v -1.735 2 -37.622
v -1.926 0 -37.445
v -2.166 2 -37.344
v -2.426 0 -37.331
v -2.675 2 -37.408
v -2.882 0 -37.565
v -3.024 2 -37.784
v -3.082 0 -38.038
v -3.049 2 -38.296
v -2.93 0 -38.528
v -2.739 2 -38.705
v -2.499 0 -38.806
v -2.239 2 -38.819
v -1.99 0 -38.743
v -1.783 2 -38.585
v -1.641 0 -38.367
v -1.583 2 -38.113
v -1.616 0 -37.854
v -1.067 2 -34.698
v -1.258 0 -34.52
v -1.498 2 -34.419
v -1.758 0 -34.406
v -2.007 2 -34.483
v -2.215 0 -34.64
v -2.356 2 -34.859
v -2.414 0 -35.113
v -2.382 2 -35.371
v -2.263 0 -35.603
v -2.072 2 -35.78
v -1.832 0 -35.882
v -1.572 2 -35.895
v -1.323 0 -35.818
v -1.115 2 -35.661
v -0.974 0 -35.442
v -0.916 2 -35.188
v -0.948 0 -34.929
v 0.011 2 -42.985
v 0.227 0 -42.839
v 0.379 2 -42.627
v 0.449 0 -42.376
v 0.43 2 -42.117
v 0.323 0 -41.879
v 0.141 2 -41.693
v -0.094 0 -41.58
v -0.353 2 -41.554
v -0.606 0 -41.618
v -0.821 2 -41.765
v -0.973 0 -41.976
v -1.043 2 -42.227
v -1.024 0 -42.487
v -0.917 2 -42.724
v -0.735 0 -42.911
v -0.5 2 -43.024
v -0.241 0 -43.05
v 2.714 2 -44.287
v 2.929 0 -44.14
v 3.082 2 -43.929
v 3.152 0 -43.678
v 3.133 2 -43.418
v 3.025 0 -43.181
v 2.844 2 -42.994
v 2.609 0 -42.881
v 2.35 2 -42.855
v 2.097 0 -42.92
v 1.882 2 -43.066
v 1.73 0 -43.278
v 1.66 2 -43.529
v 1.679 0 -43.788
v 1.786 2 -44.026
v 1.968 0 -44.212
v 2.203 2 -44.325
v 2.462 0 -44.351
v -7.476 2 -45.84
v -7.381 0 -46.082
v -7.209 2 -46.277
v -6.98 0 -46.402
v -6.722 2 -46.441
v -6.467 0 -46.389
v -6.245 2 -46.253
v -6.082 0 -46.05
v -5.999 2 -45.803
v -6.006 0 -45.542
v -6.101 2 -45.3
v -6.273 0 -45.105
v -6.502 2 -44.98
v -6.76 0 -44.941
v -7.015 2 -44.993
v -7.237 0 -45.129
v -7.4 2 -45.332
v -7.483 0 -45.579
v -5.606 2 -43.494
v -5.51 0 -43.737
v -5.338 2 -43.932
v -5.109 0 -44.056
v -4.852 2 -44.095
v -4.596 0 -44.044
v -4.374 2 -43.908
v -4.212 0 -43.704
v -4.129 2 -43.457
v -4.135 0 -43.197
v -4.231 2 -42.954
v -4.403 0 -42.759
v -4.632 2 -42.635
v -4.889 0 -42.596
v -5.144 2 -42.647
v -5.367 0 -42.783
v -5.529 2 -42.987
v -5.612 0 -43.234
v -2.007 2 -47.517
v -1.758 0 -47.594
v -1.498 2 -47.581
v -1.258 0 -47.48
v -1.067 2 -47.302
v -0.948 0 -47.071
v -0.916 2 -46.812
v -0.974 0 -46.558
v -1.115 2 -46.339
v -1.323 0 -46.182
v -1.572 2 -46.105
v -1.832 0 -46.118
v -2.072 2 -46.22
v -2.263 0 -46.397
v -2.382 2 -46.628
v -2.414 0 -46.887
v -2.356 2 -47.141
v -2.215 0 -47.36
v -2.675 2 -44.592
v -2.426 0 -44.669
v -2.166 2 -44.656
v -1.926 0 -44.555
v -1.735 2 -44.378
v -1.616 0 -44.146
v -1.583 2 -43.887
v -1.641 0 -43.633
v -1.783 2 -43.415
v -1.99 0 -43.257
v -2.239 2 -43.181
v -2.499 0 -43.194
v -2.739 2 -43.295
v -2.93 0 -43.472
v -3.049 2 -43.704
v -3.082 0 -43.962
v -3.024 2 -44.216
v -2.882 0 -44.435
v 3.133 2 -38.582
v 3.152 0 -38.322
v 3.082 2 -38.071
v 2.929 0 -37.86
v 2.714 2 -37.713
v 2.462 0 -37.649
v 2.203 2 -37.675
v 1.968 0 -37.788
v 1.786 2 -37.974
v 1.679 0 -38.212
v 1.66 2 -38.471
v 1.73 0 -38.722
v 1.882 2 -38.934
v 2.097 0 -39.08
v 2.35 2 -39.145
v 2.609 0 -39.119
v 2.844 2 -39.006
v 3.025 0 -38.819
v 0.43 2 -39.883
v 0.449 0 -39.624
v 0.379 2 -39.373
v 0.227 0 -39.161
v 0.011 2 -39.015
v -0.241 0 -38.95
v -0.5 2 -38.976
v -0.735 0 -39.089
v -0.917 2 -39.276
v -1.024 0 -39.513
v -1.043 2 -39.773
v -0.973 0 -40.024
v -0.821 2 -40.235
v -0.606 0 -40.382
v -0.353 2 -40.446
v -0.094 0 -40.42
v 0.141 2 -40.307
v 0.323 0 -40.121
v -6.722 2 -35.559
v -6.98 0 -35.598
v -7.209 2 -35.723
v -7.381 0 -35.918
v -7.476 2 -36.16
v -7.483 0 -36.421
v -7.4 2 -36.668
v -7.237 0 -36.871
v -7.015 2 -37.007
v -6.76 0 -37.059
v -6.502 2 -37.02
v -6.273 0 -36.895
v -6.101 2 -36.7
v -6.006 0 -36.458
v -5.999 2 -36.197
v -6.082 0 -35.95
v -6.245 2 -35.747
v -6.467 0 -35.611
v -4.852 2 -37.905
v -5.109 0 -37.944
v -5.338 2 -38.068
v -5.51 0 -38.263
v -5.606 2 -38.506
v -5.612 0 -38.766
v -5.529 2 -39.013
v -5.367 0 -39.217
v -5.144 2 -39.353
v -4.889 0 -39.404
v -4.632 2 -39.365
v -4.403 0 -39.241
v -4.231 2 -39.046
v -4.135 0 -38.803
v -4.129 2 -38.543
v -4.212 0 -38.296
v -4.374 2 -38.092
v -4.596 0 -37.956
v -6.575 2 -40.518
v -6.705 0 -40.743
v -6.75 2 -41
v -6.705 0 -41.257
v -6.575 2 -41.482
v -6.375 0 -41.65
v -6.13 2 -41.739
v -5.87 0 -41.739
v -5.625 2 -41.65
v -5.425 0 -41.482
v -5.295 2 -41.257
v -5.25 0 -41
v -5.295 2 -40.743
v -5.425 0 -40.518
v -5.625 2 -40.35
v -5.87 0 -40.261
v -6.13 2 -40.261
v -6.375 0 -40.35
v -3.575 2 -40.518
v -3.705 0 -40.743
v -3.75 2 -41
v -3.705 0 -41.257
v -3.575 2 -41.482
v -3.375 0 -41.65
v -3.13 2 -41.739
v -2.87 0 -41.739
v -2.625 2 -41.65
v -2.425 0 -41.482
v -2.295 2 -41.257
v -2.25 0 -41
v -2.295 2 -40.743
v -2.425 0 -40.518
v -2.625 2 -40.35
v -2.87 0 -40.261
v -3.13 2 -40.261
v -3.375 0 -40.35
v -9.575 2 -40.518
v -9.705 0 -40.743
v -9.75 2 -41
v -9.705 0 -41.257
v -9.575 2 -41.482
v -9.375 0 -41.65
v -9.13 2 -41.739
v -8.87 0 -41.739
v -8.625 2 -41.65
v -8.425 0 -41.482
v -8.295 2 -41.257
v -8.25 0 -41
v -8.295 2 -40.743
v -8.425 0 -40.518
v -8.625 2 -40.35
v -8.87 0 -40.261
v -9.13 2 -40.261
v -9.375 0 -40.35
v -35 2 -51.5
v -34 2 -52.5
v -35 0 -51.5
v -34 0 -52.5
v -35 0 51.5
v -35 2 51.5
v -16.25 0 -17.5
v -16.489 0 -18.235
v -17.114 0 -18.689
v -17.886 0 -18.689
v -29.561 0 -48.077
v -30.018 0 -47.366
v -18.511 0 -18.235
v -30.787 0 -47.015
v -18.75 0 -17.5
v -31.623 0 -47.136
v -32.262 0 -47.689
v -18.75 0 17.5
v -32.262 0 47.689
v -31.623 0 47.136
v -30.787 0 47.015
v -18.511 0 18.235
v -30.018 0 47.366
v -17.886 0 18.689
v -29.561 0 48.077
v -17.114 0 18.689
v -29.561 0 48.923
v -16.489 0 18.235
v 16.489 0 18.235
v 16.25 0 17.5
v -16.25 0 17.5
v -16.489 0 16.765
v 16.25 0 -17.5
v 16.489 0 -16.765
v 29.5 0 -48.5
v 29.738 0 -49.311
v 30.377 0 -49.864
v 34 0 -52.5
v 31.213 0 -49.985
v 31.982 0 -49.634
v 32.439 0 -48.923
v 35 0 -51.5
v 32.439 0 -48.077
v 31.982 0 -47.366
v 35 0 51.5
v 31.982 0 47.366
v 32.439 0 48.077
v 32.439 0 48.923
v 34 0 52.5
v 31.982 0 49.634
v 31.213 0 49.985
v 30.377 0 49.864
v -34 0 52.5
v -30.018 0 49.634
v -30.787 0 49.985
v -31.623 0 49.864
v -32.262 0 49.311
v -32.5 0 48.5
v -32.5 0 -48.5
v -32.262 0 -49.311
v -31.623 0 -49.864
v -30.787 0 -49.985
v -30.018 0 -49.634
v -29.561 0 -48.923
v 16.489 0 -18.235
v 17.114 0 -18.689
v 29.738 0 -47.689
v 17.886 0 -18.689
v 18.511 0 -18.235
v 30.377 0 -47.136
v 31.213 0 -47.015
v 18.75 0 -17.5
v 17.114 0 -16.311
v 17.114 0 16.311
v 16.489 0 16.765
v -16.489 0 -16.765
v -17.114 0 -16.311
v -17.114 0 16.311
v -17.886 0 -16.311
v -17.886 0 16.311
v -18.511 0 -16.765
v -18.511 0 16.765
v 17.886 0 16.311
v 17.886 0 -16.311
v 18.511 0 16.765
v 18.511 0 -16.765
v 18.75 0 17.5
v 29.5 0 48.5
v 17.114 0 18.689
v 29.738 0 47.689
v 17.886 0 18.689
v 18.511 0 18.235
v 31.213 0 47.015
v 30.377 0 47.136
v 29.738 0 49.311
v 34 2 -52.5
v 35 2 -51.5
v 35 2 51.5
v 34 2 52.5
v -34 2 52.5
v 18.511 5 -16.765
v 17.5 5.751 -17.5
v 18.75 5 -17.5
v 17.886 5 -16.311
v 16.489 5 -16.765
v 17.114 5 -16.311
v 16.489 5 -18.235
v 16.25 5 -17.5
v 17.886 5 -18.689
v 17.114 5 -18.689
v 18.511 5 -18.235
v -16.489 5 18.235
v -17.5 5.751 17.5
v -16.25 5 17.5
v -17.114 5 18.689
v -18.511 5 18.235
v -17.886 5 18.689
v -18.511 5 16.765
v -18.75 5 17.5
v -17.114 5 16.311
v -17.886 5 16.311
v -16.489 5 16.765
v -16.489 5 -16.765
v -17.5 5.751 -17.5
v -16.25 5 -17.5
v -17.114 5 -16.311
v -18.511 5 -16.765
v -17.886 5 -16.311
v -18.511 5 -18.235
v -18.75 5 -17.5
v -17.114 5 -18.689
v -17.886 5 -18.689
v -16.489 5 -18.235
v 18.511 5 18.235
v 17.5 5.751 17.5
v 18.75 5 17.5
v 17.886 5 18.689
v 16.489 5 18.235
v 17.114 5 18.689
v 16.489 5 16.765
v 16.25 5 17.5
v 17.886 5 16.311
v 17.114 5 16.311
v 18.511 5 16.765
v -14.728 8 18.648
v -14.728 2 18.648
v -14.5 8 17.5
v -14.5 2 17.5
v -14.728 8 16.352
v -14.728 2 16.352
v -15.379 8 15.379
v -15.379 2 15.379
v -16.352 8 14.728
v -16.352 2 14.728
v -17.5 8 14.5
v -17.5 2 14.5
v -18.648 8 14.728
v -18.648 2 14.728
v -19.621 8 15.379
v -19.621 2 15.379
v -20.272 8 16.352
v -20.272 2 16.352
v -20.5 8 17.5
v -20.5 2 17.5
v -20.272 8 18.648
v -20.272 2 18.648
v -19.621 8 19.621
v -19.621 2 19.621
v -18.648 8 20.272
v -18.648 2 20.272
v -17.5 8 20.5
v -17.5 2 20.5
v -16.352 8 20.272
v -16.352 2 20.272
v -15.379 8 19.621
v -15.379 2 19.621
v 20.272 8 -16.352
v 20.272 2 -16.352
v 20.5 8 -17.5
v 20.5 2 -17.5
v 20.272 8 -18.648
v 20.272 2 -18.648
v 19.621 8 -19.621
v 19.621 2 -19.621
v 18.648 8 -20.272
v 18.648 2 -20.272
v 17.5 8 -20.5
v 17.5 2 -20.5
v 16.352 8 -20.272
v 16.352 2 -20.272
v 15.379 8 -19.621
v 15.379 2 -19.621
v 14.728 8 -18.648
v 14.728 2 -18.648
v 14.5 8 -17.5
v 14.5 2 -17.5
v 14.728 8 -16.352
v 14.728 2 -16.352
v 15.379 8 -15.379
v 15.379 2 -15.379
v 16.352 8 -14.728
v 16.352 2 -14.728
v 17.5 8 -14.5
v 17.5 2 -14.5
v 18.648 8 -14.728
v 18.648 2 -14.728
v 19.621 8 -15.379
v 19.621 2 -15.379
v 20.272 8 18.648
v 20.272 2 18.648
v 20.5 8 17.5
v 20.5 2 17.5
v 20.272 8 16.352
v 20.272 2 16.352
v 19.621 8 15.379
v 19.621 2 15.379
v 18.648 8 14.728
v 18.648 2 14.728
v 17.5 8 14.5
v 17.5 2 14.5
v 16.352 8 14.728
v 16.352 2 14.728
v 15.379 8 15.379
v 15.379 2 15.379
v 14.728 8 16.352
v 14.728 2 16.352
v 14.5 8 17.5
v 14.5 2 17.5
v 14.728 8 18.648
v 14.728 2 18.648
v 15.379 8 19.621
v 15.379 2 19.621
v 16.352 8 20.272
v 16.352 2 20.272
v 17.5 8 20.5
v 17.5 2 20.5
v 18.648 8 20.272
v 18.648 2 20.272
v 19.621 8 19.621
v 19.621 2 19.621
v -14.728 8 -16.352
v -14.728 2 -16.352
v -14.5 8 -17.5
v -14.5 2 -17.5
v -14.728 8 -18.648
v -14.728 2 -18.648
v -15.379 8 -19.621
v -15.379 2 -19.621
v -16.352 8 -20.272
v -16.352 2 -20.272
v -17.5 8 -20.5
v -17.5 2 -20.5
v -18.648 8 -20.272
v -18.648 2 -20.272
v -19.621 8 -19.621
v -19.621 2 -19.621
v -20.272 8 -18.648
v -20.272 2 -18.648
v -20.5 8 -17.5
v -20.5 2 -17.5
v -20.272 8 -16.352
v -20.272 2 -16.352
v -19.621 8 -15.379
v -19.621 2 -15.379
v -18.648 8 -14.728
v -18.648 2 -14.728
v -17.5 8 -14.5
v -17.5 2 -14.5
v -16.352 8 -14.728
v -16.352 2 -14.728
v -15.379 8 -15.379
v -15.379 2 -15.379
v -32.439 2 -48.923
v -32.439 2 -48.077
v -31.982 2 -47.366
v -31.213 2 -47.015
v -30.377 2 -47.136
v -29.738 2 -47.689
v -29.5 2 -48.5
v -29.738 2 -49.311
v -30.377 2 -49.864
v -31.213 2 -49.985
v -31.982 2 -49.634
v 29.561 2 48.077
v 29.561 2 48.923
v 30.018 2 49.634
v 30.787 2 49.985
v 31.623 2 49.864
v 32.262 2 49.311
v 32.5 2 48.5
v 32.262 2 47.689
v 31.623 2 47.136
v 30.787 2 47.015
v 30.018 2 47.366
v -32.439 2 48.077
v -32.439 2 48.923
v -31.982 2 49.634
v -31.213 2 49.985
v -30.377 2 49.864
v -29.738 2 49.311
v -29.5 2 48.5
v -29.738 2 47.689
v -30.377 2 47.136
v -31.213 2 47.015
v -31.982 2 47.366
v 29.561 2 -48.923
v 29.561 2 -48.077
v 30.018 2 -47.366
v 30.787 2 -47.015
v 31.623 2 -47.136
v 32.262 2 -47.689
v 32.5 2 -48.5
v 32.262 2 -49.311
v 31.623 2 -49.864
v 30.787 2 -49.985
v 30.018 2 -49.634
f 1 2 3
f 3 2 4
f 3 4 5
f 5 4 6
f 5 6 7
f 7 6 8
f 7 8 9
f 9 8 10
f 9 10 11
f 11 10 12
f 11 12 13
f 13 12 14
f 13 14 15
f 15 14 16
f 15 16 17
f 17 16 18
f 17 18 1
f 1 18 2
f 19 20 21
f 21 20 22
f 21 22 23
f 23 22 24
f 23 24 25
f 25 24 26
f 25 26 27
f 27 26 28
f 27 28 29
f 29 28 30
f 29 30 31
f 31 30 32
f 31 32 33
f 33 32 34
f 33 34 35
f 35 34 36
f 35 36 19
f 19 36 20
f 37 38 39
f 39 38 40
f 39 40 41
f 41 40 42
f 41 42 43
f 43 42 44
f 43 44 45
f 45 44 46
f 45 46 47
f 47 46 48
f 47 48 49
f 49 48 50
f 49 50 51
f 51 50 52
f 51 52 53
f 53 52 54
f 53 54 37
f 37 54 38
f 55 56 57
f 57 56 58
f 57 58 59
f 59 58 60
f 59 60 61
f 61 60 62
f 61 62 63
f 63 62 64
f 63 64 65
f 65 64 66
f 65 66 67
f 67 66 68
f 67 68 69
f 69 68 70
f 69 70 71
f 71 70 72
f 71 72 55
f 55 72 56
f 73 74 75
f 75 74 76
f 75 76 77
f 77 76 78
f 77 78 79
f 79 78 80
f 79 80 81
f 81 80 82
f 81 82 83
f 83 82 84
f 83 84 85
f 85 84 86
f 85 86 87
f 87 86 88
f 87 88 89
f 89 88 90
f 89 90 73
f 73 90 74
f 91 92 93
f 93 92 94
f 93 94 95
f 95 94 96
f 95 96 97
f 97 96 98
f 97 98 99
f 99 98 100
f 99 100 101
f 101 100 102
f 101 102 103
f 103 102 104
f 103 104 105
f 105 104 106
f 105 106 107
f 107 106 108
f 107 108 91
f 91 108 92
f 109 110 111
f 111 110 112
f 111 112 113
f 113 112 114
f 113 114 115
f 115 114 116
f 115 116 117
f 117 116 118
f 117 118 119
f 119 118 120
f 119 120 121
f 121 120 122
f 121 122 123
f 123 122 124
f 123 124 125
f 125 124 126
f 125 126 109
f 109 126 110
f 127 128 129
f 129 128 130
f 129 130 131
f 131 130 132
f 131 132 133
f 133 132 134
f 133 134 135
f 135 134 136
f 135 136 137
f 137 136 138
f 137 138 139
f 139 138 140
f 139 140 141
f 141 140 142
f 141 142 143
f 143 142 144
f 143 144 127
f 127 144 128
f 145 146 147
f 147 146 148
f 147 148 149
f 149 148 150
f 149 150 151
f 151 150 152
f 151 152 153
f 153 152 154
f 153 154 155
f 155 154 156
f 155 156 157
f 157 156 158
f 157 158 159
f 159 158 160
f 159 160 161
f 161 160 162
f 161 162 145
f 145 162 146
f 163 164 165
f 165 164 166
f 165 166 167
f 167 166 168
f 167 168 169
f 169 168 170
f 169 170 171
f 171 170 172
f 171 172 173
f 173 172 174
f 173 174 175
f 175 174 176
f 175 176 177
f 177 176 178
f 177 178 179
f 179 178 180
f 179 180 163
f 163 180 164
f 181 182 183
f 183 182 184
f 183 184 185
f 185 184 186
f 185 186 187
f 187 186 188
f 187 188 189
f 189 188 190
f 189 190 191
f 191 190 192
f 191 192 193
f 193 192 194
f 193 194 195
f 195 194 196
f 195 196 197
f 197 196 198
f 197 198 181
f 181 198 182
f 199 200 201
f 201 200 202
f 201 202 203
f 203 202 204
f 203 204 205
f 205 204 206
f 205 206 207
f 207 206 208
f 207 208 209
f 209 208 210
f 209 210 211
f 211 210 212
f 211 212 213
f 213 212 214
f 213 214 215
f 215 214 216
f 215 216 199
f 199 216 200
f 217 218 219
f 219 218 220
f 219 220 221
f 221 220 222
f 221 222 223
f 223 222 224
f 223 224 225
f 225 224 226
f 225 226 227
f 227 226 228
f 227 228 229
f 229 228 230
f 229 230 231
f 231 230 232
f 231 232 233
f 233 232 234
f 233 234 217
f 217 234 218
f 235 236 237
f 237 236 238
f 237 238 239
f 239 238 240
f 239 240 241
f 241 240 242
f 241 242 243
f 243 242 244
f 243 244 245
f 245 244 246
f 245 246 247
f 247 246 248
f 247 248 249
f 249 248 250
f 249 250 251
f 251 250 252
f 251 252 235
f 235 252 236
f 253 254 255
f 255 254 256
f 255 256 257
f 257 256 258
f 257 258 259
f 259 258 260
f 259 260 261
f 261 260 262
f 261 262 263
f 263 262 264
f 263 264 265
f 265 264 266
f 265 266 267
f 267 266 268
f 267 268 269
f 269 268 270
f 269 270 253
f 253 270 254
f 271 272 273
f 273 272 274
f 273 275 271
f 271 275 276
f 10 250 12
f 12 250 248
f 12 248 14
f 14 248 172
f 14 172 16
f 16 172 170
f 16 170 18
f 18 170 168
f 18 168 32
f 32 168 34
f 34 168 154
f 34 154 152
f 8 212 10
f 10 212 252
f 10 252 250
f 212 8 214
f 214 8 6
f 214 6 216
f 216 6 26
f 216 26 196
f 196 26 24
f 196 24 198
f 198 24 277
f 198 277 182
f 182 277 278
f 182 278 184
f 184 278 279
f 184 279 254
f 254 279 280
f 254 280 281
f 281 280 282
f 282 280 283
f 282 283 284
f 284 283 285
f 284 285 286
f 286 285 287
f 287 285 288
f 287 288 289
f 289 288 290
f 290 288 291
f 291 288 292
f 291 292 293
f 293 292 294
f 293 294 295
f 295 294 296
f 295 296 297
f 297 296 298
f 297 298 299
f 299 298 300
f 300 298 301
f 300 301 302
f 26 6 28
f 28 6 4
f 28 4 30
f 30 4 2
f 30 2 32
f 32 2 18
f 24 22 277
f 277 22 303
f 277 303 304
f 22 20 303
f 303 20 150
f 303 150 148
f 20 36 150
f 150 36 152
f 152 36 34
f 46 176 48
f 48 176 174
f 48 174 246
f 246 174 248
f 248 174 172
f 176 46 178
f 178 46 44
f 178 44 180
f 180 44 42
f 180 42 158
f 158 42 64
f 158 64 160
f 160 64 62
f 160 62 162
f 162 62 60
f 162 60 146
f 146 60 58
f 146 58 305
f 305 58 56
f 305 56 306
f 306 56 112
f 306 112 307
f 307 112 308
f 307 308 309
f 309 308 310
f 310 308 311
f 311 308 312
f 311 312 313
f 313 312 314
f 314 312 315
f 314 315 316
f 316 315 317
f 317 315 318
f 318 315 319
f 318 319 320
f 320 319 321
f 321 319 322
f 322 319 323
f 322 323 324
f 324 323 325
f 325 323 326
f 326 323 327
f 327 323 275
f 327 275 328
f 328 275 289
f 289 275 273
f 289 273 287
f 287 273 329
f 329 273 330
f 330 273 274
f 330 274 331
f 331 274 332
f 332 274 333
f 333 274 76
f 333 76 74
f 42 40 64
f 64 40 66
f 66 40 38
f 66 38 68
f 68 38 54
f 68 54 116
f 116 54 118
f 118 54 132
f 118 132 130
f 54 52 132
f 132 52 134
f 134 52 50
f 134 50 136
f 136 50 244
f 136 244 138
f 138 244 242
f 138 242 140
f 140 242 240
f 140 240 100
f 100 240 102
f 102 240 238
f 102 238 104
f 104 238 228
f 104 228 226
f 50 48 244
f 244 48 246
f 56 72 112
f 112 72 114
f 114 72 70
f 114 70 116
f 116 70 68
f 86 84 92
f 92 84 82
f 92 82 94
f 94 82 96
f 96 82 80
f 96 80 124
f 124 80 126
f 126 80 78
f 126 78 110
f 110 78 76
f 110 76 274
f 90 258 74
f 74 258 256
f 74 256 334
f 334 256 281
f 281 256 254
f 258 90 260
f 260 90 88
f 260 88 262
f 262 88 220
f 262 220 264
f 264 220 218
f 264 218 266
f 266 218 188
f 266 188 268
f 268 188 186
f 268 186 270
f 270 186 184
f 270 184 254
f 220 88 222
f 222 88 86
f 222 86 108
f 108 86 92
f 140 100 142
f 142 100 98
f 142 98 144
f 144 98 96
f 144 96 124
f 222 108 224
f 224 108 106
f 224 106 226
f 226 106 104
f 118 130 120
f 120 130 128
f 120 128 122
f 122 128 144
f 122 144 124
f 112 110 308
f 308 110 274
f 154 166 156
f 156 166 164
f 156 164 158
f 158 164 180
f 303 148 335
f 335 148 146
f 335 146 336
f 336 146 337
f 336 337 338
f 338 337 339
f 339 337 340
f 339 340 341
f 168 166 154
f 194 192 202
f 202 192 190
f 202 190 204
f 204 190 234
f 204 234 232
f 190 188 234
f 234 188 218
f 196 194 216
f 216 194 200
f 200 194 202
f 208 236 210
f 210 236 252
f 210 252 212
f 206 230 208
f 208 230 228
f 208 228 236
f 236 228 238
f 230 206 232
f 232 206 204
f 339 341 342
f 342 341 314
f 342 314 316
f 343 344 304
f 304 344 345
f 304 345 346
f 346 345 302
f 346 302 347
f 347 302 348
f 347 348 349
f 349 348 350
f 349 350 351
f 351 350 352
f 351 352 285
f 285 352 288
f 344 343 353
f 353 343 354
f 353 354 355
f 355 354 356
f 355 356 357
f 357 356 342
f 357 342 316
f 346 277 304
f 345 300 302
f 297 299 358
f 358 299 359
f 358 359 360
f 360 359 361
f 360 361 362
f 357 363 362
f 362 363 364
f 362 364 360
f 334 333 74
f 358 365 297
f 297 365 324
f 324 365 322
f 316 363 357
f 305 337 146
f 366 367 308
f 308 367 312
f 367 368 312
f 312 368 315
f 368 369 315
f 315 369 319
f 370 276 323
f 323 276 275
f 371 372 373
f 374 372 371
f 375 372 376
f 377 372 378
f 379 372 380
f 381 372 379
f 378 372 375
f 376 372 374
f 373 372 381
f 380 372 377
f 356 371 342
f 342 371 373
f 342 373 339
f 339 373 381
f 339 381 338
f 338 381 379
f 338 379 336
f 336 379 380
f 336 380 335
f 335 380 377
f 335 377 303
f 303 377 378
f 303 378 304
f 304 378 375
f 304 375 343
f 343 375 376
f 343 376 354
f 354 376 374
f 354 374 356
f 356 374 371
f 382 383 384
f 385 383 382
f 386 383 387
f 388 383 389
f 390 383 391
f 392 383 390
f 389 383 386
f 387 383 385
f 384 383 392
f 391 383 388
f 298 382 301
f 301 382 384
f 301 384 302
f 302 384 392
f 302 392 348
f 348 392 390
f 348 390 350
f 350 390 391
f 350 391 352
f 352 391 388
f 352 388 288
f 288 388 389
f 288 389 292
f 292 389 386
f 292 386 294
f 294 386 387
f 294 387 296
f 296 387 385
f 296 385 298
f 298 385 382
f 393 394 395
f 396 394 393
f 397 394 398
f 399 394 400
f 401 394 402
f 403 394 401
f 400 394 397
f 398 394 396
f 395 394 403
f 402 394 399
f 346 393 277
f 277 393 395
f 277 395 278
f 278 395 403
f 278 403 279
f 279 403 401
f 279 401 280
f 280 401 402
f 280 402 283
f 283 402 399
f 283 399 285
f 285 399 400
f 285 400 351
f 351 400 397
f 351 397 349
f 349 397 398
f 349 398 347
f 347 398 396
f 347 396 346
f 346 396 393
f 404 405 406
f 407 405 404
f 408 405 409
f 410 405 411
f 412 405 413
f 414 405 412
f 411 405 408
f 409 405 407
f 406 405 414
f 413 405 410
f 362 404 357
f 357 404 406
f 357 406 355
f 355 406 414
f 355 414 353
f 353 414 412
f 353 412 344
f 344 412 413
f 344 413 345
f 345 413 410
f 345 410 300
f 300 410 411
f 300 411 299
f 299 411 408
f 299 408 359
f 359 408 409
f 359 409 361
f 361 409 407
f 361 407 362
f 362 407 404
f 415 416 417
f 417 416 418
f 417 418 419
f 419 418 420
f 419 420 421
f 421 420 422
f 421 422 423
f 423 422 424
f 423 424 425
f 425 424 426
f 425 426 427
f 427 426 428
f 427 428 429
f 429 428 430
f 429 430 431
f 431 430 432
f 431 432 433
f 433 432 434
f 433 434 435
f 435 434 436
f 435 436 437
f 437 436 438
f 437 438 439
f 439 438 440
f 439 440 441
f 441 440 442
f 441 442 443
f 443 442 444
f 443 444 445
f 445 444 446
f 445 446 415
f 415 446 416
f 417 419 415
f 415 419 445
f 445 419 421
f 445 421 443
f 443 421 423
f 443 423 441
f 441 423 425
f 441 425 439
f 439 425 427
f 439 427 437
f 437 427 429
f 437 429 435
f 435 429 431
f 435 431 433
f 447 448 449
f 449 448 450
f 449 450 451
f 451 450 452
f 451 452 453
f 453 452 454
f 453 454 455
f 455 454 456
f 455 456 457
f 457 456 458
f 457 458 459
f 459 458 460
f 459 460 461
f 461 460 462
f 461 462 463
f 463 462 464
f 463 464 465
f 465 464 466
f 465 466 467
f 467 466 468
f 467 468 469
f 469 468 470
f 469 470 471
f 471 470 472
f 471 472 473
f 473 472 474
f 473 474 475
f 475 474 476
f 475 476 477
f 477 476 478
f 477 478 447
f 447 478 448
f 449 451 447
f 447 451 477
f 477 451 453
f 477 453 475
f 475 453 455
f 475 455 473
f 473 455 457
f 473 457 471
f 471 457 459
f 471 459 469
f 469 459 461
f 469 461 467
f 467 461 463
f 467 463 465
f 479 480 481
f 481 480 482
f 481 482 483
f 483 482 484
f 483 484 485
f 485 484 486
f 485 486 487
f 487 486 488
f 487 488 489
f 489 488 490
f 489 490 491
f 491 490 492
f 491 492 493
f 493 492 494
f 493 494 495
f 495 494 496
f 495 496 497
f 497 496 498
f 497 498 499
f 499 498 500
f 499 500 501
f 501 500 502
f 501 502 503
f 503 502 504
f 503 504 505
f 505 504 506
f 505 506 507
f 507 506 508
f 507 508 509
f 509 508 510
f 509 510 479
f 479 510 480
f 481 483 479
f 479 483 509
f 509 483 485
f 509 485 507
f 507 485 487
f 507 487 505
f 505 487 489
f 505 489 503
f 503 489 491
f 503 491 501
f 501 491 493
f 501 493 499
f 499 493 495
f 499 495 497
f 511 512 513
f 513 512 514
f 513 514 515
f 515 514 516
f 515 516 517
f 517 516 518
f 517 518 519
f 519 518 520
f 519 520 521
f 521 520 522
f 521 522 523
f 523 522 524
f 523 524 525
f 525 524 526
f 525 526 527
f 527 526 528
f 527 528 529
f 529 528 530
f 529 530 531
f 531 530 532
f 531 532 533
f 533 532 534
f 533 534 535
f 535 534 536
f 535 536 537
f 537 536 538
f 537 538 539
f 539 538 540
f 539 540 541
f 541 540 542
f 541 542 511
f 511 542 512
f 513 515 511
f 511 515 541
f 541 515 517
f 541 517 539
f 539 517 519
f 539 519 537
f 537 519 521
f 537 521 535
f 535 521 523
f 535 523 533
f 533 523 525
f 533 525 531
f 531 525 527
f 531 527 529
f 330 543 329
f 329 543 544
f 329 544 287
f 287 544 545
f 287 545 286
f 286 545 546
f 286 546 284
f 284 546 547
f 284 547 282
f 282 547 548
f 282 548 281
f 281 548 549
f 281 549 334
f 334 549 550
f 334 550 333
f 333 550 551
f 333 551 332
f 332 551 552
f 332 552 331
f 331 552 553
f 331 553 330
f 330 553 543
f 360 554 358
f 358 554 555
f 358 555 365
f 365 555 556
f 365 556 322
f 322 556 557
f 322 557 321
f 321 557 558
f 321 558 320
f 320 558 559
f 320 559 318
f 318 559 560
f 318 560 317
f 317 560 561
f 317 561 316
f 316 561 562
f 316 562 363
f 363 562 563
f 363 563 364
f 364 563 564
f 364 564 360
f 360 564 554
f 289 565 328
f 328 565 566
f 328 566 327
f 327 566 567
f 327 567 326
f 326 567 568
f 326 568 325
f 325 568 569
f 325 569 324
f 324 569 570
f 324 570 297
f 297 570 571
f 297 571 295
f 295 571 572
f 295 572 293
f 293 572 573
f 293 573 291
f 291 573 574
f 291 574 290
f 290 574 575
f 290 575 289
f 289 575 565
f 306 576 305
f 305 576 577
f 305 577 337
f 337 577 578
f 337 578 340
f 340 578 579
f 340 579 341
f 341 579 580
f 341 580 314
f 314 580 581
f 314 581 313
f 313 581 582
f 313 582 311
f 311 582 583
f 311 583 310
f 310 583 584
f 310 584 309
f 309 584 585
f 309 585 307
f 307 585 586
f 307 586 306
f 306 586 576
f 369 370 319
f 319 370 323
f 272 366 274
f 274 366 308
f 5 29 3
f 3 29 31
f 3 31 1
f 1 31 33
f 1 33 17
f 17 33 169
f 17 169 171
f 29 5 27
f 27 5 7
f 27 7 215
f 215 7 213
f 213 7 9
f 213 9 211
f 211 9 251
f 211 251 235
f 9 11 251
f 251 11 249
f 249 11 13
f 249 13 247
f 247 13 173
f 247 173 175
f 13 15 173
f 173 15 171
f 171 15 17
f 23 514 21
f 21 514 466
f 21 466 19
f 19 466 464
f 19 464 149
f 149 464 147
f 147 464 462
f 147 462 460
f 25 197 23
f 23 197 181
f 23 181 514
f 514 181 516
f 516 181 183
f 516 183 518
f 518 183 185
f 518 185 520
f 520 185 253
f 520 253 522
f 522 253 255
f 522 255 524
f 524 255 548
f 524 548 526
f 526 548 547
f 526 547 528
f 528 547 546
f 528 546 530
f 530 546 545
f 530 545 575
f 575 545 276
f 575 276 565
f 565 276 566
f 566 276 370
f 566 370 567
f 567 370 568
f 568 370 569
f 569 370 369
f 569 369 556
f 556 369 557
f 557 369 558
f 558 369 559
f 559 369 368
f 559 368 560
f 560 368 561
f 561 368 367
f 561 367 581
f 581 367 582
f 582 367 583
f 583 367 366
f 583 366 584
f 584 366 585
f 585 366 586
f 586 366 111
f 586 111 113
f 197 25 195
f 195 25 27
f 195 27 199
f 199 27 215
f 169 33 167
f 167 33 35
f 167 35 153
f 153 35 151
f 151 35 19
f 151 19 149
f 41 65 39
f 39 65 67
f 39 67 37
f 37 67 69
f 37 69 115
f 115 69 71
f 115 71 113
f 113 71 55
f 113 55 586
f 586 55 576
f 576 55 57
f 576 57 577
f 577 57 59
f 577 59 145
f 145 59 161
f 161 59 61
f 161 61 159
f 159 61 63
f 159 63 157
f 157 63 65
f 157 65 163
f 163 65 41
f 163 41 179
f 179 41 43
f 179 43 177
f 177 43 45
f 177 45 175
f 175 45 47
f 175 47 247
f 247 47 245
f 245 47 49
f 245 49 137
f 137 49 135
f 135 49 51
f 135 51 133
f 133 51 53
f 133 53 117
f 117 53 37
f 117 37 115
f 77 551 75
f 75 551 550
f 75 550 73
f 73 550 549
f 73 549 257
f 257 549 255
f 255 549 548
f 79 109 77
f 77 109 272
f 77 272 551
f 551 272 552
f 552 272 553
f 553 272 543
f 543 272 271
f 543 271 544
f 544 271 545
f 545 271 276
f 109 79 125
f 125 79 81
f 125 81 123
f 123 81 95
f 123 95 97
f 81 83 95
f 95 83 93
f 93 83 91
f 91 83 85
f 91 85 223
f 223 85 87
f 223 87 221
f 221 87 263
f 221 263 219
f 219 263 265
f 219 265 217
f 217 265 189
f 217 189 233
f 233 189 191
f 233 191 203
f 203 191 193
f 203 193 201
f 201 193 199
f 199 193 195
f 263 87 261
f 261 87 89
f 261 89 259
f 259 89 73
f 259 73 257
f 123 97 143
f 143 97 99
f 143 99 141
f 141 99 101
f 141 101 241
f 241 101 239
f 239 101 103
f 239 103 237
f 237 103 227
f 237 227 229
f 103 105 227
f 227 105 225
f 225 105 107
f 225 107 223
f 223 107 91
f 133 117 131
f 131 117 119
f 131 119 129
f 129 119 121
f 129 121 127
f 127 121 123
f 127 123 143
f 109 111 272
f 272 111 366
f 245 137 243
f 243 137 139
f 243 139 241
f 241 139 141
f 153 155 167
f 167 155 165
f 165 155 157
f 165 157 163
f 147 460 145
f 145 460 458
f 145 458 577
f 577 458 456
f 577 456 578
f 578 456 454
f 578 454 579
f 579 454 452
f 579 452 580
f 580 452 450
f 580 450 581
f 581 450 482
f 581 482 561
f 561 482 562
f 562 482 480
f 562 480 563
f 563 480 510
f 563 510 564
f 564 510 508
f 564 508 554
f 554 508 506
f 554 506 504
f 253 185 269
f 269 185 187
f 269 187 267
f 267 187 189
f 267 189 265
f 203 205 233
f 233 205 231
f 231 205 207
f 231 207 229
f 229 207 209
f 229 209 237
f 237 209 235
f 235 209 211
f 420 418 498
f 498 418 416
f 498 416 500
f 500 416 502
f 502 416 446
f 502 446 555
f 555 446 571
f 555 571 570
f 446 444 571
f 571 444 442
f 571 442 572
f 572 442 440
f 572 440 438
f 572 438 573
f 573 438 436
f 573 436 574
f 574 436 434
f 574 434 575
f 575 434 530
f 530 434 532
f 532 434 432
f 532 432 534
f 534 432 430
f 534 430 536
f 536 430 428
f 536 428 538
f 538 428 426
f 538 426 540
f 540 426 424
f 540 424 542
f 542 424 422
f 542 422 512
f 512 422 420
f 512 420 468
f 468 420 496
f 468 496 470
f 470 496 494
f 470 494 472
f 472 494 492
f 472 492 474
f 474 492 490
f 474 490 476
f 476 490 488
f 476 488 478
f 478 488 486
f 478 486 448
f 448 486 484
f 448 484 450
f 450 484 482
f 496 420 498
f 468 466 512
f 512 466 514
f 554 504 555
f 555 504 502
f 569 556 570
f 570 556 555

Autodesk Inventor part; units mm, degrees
ref_plane "YZ Plane" through (0, 0, 0) normal (1, 0, 0) x (0, 1, 0)
ref_plane "XZ Plane" through (0, 0, 0) normal (0, 1, 0) x (-1, 0, 0)
ref_plane "XY Plane" through (0, 0, 0) normal (0, 0, 1) x (1, 0, 0)
sketch "Skizze1" plane through (0, 0, 0) normal (0, 1, 0) x (-1, 0, 0)
  line L0 (35, 52.5) -> (-35, 52.5)
  line L1 (-35, 52.5) -> (-35, -52.5)
  line L2 (-35, -52.5) -> (35, -52.5)
  line L3 (35, -52.5) -> (35, 52.5)
  point P0 (0, 0)
  point P1 (35, 0)
  point P2 (0, 52.5)
  dimension "d0" = 70
  dimension "d1" = 105
extrude "Extrusion1" add sketch "Skizze1" along normal blind 2
sketch "Skizze3" plane through (0, 2, 0) normal (0, 1, 0) x (1, 0, 0)
  line L0 (31, 48.5) -> (-31, 48.5) construction
  line L1 (-31, 48.5) -> (-31, -48.5) construction
  line L2 (-31, -48.5) -> (31, -48.5) construction
  line L3 (31, -48.5) -> (31, 48.5) construction
  line L4 (35, -52.5) -> (35, 52.5) construction
  line L5 (35, 52.5) -> (-35, 52.5) construction
  line L6 (-35, 52.5) -> (-35, -52.5) construction
  line L7 (-35, -52.5) -> (35, -52.5) construction
  point P0 (0, 0)
  point P1 (31, 0)
  point P2 (0, 48.5)
  dimension "d27" = 105
  dimension "d28" = 70
  dimension "d29" = 62
  dimension "d30" = 97
hole "Bohrung1" at (31, 2, 48.5) at (-31, 2, 48.5) at (-31, 2, -48.5) at (31, 2, -48.5) direction (0, -1, 0) diameter 3 end through all
sketch "Skizze5" plane through (0, 2, 0) normal (0, 1, 0) x (1, 0, 0)
  line L0 (0, 40.5) -> (-2, 40.5)
  line L1 (-2, 40.5) -> (-2, 20.5)
  line L2 (-2, 20.5) -> (0, 20.5)
  line L3 (0, 20.5) -> (0, 40.5)
  line L4 (0, 10.5) -> (-7, 10.5)
  line L5 (-7, 10.5) -> (-7, 8.5)
  line L6 (-7, 8.5) -> (0, 8.5)
  line L7 (0, 8.5) -> (0, 10.5)
  circle A0 centre (-31, 48.5) radius 1.5 construction
  circle A1 centre (31, -48.5) radius 1.5 construction
  circle A2 centre (-31, -48.5) radius 1.5 construction
  circle A3 centre (31, 48.5) radius 1.5 construction
  line L8 (35, -52.5) -> (35, 52.5) construction
  line L9 (35, 52.5) -> (-35, 52.5) construction
  line L10 (-35, 52.5) -> (-35, -52.5) construction
  line L11 (-35, -52.5) -> (35, -52.5) construction
  line L12 (-7, 20.5) -> (-5, 20.5)
  line L13 (-5, 20.5) -> (-5, 40.5)
  line L14 (-5, 40.5) -> (-7, 40.5)
  line L15 (-7, 40.5) -> (-7, 20.5)
  point P0 (0, 0)
  point P1 (-1, 20.5)
  dimension "d45" = 2
  dimension "d46" = 42
  dimension "d48" = 20
  dimension "d49" = 7
  dimension "d51" = 0
  dimension "d56" = 10
  dimension "d57" = 3
  dimension "d58" = 20
  dimension "d59" = 0
extrude "Extrusion5" [suppressed]
sketch "Skizze6" plane through (0, 2, 0) normal (0, 1, 0) x (1, 0, 0)
  line L0 (-17.5, 17.5) -> (17.5, 17.5) construction
  line L1 (17.5, 17.5) -> (17.5, -17.5) construction
  line L2 (17.5, -17.5) -> (-17.5, -17.5) construction
  line L3 (-17.5, -17.5) -> (-17.5, 17.5) construction
  circle A0 centre (-17.5, 17.5) radius 3
  circle A1 centre (-17.5, -17.5) radius 3
  circle A2 centre (17.5, -17.5) radius 3
  circle A3 centre (17.5, 17.5) radius 3
  point P0 (0, 0)
  point P1 (-17.5, 0)
  point P2 (0, 17.5)
  dimension "d60" = 35
  dimension "d61" = 6
  dimension "d62" = 6
  dimension "d63" = 6
  dimension "d64" = 6
extrude "Extrusion6" add sketch "Skizze6" along normal blind 6
sketch "Skizze7" plane through (0, 0, 0) normal (0, -1, 0) x (1, 0, 0)
  circle A0 centre (-17.5, 17.5) radius 3 construction
  circle A1 centre (-17.5, -17.5) radius 3 construction
  arc A2 (20.5, -17.5) -> (20.5, -17.5) centre (17.5, -17.5) ccw construction
  arc A3 (20.5, 17.5) -> (20.5, 17.5) centre (17.5, 17.5) ccw construction
  point P0 (0, 0)
  point P1 (20, -17.5)
  point P2 (20, 17.5)
hole "Bohrung2" at (-17.5, 0, 17.5) at (-17.5, 0, -17.5) at (17.5, 0, -17.5) at (17.5, 0, 17.5) direction (0, 1, 0) diameter 2.5 depth 5 tip angle 118
chamfer "Fase1" distance 1 angle 45 4 edges at (-35, 1, 52.5) (35, 1, 52.5) (35, 1, -52.5) (-35, 1, -52.5)
sketch "Skizze10" plane through (0, 0, 0) normal (0, -1, 0) x (1, 0, 0)
  point P0 (0, 0)
  point P1 (-3, -41)
  point P2 (-6, -41)
  point P3 (-9, -41)
  dimension "d105" = 41
  dimension "d106" = 3
  dimension "d107" = 3
  dimension "d108" = 3
hole "Bohrung3" at (-3, 0, -41) at (-6, 0, -41) at (-9, 0, -41) direction (0, 1, 0) diameter 1.5 depth 5 tip angle 118
pattern_circular "Runde Anordnung1" count 7 over 360 about axis through (-3, 2.5, -41) along (0, -1, 0) of "Bohrung3"
equation "\"d62\" = d61"
equation "\"d63\" = d61"
equation "\"d64\" = d61"
properties part number "Case_bottom" material "PC/ABS-Kunststoff"
